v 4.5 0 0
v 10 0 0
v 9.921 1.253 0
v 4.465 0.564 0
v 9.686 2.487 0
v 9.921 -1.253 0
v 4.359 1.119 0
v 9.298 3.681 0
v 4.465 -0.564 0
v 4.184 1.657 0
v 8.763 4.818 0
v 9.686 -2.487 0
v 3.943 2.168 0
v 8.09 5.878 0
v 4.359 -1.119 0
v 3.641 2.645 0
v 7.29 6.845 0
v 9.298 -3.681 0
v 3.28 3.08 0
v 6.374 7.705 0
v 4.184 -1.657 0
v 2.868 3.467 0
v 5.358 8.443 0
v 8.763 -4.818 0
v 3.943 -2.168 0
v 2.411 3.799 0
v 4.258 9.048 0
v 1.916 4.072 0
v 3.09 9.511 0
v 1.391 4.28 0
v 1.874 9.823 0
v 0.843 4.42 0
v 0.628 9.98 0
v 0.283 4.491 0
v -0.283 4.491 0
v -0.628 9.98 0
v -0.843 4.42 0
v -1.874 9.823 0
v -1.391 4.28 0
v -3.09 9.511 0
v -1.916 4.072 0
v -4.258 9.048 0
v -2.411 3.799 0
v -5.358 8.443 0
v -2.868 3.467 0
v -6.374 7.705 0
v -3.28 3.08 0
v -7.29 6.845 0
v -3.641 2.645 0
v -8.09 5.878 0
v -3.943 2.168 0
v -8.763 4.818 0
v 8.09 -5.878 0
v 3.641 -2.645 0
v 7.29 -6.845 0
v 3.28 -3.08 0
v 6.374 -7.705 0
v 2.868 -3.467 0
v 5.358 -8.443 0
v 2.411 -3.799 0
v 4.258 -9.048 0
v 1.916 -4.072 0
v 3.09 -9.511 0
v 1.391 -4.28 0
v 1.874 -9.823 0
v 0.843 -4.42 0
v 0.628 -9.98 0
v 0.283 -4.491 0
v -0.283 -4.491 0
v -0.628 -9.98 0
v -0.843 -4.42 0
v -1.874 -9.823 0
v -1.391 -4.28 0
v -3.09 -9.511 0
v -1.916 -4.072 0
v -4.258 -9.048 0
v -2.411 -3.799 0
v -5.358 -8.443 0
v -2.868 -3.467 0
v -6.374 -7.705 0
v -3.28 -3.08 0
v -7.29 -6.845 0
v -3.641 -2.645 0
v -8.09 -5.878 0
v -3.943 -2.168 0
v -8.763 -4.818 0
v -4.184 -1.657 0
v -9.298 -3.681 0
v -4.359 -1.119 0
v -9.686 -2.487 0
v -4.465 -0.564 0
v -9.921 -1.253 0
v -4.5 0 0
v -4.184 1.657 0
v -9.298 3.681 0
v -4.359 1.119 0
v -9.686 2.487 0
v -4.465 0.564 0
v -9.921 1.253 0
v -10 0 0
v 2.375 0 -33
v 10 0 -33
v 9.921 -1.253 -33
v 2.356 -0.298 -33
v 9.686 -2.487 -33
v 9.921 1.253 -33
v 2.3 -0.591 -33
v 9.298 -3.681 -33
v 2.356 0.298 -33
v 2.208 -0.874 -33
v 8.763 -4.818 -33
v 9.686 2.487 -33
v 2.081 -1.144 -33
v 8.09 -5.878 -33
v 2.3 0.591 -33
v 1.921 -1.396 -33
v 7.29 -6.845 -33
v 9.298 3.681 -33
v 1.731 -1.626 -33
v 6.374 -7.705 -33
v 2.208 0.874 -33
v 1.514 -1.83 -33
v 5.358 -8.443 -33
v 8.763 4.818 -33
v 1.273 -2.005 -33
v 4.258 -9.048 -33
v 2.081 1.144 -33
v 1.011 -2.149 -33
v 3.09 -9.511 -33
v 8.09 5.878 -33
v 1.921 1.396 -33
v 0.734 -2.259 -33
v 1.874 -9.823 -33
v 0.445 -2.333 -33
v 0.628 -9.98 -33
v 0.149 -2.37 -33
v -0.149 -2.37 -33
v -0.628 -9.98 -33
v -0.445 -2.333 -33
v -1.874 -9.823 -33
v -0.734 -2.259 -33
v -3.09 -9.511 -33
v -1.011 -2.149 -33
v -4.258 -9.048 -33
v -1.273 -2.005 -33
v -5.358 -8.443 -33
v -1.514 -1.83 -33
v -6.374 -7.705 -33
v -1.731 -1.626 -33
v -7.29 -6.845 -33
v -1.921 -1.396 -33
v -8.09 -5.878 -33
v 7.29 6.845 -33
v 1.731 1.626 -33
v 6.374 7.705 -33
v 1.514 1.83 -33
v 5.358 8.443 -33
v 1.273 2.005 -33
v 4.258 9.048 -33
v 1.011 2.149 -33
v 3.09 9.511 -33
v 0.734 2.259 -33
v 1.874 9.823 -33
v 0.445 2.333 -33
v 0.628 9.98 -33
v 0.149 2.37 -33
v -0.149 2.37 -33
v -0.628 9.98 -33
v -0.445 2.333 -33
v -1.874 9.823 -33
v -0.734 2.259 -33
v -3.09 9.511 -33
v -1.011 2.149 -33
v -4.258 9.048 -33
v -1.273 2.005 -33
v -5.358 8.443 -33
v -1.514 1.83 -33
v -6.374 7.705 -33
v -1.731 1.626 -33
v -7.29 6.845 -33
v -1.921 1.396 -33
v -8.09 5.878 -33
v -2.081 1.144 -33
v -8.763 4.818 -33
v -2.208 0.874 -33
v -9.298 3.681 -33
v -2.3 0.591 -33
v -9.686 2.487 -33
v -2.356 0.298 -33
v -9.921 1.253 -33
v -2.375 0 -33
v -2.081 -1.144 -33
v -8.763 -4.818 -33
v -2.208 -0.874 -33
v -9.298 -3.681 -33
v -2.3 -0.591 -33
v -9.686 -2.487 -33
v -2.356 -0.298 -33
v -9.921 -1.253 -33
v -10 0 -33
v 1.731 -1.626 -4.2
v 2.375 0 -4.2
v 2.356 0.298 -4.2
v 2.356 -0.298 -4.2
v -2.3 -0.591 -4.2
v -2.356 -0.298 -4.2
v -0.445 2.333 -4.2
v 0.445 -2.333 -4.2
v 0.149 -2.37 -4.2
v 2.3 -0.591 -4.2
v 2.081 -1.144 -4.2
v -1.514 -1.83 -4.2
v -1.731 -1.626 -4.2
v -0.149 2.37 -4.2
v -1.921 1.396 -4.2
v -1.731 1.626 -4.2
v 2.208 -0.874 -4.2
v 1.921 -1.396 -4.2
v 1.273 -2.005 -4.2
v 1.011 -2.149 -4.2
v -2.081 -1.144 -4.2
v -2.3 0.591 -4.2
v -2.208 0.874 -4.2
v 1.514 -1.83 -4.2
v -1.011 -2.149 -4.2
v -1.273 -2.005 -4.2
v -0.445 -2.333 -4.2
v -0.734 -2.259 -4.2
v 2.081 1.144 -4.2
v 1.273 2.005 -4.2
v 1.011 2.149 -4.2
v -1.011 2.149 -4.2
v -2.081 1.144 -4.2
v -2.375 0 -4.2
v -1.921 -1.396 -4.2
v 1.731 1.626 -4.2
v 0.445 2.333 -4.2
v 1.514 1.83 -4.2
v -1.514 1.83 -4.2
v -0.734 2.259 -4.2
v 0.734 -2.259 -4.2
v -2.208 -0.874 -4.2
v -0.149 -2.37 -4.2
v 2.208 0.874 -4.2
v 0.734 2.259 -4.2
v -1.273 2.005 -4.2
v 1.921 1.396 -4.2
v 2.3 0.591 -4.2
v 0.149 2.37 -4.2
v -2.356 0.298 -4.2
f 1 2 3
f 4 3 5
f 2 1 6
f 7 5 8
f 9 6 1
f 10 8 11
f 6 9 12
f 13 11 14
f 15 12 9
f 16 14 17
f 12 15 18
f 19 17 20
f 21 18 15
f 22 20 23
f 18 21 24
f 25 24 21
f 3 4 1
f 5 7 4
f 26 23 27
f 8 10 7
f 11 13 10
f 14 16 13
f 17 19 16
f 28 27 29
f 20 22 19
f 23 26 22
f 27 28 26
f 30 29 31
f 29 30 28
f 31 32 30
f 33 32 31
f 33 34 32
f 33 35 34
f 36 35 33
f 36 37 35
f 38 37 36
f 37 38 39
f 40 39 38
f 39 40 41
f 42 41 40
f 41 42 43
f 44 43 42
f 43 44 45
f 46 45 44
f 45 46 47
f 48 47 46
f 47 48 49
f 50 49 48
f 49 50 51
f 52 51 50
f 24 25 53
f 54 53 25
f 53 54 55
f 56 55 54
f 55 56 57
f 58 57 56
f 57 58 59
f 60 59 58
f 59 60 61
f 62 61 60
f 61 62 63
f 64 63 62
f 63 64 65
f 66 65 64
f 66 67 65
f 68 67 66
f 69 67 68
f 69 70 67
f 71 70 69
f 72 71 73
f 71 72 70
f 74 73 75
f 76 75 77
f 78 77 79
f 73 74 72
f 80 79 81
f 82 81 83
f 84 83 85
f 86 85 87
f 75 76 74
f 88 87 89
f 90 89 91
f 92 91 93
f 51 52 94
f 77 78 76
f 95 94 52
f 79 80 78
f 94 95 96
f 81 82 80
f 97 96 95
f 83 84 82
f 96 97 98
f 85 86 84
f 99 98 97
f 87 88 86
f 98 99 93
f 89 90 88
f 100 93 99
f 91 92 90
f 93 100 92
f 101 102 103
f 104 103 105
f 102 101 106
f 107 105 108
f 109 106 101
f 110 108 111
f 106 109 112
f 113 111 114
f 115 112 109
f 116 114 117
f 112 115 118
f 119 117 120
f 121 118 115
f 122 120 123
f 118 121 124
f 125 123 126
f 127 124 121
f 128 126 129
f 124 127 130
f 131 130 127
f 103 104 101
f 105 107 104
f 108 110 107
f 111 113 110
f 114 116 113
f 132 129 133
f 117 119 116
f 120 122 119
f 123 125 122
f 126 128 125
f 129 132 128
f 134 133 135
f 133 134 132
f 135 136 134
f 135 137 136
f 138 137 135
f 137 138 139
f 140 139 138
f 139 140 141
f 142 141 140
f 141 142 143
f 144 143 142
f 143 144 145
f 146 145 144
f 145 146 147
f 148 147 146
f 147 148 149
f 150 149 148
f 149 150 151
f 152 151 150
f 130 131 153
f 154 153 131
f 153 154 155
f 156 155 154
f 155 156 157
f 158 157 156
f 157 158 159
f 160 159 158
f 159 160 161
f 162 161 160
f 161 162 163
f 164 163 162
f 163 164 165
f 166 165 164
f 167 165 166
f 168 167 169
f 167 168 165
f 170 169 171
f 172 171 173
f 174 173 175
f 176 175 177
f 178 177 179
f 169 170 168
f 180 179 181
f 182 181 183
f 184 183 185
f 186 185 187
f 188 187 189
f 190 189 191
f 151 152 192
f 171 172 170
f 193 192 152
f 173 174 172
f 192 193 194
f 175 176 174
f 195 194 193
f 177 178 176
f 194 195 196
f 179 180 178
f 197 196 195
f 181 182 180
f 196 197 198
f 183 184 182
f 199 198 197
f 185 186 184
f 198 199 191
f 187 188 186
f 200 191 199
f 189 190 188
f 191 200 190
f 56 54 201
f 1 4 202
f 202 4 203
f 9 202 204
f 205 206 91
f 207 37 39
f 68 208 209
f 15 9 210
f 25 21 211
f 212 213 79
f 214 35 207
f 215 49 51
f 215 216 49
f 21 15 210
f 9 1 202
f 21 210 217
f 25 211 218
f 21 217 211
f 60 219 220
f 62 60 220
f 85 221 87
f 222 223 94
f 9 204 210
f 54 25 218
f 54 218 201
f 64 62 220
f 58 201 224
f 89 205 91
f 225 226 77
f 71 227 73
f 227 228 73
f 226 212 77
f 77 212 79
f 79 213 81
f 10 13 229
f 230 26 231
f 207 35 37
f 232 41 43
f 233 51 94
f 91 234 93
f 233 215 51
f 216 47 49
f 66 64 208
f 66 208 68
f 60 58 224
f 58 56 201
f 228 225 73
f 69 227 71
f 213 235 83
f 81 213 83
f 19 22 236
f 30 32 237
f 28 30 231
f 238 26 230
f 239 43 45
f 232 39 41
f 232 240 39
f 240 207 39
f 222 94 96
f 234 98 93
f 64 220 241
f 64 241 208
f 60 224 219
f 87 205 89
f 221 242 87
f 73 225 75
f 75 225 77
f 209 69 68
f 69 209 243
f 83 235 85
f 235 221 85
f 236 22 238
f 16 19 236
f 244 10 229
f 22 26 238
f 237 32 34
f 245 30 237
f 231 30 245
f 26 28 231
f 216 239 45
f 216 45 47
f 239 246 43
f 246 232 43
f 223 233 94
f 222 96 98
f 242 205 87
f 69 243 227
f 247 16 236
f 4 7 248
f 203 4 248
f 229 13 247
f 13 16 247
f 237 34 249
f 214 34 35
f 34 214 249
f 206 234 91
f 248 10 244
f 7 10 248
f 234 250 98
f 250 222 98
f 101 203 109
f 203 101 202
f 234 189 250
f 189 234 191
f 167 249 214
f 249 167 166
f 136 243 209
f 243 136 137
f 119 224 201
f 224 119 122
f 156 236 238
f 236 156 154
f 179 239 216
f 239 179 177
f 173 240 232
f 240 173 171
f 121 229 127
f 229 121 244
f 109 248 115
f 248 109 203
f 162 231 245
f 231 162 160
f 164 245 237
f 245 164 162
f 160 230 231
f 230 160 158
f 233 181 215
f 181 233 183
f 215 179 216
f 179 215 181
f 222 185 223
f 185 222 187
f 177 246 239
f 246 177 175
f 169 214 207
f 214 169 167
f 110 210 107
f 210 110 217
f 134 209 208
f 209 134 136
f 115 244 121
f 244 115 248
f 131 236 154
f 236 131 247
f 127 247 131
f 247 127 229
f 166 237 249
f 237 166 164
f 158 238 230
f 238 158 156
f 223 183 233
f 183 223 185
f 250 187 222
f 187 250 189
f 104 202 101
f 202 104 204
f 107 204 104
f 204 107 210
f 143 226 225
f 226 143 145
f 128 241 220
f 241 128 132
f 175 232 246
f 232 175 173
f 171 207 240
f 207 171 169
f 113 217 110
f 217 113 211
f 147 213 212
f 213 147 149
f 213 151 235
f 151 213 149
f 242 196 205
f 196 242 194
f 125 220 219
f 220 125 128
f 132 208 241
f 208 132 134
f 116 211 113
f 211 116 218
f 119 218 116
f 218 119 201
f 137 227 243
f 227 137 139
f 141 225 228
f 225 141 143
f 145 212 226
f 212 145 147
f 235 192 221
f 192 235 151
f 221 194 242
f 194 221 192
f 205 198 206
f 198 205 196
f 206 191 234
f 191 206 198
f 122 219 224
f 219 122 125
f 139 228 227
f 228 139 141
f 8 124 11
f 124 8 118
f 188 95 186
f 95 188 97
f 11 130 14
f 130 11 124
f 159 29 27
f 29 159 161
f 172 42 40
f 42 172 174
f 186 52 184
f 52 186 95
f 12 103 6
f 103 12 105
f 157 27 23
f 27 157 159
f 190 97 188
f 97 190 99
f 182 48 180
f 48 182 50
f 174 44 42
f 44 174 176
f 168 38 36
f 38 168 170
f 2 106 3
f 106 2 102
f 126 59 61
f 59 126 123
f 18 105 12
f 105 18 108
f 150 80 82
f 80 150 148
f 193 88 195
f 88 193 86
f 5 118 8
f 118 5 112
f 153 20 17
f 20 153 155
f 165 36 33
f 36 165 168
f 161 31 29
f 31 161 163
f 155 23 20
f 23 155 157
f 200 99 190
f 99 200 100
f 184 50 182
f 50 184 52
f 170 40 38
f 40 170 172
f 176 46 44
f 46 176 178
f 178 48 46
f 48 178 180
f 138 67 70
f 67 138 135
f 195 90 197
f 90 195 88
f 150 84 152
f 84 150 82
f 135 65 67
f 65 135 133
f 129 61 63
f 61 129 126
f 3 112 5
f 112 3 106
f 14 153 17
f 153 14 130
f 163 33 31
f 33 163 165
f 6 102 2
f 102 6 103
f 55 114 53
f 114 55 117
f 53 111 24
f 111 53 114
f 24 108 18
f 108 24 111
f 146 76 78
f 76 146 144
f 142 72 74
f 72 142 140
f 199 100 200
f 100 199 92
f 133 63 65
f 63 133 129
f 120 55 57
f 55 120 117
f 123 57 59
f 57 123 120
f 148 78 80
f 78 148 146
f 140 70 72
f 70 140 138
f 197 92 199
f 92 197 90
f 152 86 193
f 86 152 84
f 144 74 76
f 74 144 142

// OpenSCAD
$fn = 50;


difference() {
	union() {
		translate(v = [0, 0, -33.0000000000]) {
			cylinder(h = 33, r = 10.0000000000);
		}
		cylinder(h = 0, r = 19.0000000000);
	}
	union() {
		translate(v = [0, 0, 0]) {
			rotate(a = [0, 0, 0]) {
				difference() {
					union() {
						#translate(v = [0, 0, -33.0000000000]) {
							cylinder(h = 33, r = 2.2500000000);
						}
						#translate(v = [0, 0, -4.2000000000]) {
							cylinder(h = 4.2000000000, r = 10.0000000000, r1 = 2.3750000000, r2 = 4.5000000000);
						}
						#translate(v = [0, 0, -33.0000000000]) {
							cylinder(h = 33, r = 2.3750000000);
						}
						#translate(v = [0, 0, -33.0000000000]) {
							cylinder(h = 33, r = 2.2500000000);
						}
					}
					union();
				}
			}
		}
	}
}
